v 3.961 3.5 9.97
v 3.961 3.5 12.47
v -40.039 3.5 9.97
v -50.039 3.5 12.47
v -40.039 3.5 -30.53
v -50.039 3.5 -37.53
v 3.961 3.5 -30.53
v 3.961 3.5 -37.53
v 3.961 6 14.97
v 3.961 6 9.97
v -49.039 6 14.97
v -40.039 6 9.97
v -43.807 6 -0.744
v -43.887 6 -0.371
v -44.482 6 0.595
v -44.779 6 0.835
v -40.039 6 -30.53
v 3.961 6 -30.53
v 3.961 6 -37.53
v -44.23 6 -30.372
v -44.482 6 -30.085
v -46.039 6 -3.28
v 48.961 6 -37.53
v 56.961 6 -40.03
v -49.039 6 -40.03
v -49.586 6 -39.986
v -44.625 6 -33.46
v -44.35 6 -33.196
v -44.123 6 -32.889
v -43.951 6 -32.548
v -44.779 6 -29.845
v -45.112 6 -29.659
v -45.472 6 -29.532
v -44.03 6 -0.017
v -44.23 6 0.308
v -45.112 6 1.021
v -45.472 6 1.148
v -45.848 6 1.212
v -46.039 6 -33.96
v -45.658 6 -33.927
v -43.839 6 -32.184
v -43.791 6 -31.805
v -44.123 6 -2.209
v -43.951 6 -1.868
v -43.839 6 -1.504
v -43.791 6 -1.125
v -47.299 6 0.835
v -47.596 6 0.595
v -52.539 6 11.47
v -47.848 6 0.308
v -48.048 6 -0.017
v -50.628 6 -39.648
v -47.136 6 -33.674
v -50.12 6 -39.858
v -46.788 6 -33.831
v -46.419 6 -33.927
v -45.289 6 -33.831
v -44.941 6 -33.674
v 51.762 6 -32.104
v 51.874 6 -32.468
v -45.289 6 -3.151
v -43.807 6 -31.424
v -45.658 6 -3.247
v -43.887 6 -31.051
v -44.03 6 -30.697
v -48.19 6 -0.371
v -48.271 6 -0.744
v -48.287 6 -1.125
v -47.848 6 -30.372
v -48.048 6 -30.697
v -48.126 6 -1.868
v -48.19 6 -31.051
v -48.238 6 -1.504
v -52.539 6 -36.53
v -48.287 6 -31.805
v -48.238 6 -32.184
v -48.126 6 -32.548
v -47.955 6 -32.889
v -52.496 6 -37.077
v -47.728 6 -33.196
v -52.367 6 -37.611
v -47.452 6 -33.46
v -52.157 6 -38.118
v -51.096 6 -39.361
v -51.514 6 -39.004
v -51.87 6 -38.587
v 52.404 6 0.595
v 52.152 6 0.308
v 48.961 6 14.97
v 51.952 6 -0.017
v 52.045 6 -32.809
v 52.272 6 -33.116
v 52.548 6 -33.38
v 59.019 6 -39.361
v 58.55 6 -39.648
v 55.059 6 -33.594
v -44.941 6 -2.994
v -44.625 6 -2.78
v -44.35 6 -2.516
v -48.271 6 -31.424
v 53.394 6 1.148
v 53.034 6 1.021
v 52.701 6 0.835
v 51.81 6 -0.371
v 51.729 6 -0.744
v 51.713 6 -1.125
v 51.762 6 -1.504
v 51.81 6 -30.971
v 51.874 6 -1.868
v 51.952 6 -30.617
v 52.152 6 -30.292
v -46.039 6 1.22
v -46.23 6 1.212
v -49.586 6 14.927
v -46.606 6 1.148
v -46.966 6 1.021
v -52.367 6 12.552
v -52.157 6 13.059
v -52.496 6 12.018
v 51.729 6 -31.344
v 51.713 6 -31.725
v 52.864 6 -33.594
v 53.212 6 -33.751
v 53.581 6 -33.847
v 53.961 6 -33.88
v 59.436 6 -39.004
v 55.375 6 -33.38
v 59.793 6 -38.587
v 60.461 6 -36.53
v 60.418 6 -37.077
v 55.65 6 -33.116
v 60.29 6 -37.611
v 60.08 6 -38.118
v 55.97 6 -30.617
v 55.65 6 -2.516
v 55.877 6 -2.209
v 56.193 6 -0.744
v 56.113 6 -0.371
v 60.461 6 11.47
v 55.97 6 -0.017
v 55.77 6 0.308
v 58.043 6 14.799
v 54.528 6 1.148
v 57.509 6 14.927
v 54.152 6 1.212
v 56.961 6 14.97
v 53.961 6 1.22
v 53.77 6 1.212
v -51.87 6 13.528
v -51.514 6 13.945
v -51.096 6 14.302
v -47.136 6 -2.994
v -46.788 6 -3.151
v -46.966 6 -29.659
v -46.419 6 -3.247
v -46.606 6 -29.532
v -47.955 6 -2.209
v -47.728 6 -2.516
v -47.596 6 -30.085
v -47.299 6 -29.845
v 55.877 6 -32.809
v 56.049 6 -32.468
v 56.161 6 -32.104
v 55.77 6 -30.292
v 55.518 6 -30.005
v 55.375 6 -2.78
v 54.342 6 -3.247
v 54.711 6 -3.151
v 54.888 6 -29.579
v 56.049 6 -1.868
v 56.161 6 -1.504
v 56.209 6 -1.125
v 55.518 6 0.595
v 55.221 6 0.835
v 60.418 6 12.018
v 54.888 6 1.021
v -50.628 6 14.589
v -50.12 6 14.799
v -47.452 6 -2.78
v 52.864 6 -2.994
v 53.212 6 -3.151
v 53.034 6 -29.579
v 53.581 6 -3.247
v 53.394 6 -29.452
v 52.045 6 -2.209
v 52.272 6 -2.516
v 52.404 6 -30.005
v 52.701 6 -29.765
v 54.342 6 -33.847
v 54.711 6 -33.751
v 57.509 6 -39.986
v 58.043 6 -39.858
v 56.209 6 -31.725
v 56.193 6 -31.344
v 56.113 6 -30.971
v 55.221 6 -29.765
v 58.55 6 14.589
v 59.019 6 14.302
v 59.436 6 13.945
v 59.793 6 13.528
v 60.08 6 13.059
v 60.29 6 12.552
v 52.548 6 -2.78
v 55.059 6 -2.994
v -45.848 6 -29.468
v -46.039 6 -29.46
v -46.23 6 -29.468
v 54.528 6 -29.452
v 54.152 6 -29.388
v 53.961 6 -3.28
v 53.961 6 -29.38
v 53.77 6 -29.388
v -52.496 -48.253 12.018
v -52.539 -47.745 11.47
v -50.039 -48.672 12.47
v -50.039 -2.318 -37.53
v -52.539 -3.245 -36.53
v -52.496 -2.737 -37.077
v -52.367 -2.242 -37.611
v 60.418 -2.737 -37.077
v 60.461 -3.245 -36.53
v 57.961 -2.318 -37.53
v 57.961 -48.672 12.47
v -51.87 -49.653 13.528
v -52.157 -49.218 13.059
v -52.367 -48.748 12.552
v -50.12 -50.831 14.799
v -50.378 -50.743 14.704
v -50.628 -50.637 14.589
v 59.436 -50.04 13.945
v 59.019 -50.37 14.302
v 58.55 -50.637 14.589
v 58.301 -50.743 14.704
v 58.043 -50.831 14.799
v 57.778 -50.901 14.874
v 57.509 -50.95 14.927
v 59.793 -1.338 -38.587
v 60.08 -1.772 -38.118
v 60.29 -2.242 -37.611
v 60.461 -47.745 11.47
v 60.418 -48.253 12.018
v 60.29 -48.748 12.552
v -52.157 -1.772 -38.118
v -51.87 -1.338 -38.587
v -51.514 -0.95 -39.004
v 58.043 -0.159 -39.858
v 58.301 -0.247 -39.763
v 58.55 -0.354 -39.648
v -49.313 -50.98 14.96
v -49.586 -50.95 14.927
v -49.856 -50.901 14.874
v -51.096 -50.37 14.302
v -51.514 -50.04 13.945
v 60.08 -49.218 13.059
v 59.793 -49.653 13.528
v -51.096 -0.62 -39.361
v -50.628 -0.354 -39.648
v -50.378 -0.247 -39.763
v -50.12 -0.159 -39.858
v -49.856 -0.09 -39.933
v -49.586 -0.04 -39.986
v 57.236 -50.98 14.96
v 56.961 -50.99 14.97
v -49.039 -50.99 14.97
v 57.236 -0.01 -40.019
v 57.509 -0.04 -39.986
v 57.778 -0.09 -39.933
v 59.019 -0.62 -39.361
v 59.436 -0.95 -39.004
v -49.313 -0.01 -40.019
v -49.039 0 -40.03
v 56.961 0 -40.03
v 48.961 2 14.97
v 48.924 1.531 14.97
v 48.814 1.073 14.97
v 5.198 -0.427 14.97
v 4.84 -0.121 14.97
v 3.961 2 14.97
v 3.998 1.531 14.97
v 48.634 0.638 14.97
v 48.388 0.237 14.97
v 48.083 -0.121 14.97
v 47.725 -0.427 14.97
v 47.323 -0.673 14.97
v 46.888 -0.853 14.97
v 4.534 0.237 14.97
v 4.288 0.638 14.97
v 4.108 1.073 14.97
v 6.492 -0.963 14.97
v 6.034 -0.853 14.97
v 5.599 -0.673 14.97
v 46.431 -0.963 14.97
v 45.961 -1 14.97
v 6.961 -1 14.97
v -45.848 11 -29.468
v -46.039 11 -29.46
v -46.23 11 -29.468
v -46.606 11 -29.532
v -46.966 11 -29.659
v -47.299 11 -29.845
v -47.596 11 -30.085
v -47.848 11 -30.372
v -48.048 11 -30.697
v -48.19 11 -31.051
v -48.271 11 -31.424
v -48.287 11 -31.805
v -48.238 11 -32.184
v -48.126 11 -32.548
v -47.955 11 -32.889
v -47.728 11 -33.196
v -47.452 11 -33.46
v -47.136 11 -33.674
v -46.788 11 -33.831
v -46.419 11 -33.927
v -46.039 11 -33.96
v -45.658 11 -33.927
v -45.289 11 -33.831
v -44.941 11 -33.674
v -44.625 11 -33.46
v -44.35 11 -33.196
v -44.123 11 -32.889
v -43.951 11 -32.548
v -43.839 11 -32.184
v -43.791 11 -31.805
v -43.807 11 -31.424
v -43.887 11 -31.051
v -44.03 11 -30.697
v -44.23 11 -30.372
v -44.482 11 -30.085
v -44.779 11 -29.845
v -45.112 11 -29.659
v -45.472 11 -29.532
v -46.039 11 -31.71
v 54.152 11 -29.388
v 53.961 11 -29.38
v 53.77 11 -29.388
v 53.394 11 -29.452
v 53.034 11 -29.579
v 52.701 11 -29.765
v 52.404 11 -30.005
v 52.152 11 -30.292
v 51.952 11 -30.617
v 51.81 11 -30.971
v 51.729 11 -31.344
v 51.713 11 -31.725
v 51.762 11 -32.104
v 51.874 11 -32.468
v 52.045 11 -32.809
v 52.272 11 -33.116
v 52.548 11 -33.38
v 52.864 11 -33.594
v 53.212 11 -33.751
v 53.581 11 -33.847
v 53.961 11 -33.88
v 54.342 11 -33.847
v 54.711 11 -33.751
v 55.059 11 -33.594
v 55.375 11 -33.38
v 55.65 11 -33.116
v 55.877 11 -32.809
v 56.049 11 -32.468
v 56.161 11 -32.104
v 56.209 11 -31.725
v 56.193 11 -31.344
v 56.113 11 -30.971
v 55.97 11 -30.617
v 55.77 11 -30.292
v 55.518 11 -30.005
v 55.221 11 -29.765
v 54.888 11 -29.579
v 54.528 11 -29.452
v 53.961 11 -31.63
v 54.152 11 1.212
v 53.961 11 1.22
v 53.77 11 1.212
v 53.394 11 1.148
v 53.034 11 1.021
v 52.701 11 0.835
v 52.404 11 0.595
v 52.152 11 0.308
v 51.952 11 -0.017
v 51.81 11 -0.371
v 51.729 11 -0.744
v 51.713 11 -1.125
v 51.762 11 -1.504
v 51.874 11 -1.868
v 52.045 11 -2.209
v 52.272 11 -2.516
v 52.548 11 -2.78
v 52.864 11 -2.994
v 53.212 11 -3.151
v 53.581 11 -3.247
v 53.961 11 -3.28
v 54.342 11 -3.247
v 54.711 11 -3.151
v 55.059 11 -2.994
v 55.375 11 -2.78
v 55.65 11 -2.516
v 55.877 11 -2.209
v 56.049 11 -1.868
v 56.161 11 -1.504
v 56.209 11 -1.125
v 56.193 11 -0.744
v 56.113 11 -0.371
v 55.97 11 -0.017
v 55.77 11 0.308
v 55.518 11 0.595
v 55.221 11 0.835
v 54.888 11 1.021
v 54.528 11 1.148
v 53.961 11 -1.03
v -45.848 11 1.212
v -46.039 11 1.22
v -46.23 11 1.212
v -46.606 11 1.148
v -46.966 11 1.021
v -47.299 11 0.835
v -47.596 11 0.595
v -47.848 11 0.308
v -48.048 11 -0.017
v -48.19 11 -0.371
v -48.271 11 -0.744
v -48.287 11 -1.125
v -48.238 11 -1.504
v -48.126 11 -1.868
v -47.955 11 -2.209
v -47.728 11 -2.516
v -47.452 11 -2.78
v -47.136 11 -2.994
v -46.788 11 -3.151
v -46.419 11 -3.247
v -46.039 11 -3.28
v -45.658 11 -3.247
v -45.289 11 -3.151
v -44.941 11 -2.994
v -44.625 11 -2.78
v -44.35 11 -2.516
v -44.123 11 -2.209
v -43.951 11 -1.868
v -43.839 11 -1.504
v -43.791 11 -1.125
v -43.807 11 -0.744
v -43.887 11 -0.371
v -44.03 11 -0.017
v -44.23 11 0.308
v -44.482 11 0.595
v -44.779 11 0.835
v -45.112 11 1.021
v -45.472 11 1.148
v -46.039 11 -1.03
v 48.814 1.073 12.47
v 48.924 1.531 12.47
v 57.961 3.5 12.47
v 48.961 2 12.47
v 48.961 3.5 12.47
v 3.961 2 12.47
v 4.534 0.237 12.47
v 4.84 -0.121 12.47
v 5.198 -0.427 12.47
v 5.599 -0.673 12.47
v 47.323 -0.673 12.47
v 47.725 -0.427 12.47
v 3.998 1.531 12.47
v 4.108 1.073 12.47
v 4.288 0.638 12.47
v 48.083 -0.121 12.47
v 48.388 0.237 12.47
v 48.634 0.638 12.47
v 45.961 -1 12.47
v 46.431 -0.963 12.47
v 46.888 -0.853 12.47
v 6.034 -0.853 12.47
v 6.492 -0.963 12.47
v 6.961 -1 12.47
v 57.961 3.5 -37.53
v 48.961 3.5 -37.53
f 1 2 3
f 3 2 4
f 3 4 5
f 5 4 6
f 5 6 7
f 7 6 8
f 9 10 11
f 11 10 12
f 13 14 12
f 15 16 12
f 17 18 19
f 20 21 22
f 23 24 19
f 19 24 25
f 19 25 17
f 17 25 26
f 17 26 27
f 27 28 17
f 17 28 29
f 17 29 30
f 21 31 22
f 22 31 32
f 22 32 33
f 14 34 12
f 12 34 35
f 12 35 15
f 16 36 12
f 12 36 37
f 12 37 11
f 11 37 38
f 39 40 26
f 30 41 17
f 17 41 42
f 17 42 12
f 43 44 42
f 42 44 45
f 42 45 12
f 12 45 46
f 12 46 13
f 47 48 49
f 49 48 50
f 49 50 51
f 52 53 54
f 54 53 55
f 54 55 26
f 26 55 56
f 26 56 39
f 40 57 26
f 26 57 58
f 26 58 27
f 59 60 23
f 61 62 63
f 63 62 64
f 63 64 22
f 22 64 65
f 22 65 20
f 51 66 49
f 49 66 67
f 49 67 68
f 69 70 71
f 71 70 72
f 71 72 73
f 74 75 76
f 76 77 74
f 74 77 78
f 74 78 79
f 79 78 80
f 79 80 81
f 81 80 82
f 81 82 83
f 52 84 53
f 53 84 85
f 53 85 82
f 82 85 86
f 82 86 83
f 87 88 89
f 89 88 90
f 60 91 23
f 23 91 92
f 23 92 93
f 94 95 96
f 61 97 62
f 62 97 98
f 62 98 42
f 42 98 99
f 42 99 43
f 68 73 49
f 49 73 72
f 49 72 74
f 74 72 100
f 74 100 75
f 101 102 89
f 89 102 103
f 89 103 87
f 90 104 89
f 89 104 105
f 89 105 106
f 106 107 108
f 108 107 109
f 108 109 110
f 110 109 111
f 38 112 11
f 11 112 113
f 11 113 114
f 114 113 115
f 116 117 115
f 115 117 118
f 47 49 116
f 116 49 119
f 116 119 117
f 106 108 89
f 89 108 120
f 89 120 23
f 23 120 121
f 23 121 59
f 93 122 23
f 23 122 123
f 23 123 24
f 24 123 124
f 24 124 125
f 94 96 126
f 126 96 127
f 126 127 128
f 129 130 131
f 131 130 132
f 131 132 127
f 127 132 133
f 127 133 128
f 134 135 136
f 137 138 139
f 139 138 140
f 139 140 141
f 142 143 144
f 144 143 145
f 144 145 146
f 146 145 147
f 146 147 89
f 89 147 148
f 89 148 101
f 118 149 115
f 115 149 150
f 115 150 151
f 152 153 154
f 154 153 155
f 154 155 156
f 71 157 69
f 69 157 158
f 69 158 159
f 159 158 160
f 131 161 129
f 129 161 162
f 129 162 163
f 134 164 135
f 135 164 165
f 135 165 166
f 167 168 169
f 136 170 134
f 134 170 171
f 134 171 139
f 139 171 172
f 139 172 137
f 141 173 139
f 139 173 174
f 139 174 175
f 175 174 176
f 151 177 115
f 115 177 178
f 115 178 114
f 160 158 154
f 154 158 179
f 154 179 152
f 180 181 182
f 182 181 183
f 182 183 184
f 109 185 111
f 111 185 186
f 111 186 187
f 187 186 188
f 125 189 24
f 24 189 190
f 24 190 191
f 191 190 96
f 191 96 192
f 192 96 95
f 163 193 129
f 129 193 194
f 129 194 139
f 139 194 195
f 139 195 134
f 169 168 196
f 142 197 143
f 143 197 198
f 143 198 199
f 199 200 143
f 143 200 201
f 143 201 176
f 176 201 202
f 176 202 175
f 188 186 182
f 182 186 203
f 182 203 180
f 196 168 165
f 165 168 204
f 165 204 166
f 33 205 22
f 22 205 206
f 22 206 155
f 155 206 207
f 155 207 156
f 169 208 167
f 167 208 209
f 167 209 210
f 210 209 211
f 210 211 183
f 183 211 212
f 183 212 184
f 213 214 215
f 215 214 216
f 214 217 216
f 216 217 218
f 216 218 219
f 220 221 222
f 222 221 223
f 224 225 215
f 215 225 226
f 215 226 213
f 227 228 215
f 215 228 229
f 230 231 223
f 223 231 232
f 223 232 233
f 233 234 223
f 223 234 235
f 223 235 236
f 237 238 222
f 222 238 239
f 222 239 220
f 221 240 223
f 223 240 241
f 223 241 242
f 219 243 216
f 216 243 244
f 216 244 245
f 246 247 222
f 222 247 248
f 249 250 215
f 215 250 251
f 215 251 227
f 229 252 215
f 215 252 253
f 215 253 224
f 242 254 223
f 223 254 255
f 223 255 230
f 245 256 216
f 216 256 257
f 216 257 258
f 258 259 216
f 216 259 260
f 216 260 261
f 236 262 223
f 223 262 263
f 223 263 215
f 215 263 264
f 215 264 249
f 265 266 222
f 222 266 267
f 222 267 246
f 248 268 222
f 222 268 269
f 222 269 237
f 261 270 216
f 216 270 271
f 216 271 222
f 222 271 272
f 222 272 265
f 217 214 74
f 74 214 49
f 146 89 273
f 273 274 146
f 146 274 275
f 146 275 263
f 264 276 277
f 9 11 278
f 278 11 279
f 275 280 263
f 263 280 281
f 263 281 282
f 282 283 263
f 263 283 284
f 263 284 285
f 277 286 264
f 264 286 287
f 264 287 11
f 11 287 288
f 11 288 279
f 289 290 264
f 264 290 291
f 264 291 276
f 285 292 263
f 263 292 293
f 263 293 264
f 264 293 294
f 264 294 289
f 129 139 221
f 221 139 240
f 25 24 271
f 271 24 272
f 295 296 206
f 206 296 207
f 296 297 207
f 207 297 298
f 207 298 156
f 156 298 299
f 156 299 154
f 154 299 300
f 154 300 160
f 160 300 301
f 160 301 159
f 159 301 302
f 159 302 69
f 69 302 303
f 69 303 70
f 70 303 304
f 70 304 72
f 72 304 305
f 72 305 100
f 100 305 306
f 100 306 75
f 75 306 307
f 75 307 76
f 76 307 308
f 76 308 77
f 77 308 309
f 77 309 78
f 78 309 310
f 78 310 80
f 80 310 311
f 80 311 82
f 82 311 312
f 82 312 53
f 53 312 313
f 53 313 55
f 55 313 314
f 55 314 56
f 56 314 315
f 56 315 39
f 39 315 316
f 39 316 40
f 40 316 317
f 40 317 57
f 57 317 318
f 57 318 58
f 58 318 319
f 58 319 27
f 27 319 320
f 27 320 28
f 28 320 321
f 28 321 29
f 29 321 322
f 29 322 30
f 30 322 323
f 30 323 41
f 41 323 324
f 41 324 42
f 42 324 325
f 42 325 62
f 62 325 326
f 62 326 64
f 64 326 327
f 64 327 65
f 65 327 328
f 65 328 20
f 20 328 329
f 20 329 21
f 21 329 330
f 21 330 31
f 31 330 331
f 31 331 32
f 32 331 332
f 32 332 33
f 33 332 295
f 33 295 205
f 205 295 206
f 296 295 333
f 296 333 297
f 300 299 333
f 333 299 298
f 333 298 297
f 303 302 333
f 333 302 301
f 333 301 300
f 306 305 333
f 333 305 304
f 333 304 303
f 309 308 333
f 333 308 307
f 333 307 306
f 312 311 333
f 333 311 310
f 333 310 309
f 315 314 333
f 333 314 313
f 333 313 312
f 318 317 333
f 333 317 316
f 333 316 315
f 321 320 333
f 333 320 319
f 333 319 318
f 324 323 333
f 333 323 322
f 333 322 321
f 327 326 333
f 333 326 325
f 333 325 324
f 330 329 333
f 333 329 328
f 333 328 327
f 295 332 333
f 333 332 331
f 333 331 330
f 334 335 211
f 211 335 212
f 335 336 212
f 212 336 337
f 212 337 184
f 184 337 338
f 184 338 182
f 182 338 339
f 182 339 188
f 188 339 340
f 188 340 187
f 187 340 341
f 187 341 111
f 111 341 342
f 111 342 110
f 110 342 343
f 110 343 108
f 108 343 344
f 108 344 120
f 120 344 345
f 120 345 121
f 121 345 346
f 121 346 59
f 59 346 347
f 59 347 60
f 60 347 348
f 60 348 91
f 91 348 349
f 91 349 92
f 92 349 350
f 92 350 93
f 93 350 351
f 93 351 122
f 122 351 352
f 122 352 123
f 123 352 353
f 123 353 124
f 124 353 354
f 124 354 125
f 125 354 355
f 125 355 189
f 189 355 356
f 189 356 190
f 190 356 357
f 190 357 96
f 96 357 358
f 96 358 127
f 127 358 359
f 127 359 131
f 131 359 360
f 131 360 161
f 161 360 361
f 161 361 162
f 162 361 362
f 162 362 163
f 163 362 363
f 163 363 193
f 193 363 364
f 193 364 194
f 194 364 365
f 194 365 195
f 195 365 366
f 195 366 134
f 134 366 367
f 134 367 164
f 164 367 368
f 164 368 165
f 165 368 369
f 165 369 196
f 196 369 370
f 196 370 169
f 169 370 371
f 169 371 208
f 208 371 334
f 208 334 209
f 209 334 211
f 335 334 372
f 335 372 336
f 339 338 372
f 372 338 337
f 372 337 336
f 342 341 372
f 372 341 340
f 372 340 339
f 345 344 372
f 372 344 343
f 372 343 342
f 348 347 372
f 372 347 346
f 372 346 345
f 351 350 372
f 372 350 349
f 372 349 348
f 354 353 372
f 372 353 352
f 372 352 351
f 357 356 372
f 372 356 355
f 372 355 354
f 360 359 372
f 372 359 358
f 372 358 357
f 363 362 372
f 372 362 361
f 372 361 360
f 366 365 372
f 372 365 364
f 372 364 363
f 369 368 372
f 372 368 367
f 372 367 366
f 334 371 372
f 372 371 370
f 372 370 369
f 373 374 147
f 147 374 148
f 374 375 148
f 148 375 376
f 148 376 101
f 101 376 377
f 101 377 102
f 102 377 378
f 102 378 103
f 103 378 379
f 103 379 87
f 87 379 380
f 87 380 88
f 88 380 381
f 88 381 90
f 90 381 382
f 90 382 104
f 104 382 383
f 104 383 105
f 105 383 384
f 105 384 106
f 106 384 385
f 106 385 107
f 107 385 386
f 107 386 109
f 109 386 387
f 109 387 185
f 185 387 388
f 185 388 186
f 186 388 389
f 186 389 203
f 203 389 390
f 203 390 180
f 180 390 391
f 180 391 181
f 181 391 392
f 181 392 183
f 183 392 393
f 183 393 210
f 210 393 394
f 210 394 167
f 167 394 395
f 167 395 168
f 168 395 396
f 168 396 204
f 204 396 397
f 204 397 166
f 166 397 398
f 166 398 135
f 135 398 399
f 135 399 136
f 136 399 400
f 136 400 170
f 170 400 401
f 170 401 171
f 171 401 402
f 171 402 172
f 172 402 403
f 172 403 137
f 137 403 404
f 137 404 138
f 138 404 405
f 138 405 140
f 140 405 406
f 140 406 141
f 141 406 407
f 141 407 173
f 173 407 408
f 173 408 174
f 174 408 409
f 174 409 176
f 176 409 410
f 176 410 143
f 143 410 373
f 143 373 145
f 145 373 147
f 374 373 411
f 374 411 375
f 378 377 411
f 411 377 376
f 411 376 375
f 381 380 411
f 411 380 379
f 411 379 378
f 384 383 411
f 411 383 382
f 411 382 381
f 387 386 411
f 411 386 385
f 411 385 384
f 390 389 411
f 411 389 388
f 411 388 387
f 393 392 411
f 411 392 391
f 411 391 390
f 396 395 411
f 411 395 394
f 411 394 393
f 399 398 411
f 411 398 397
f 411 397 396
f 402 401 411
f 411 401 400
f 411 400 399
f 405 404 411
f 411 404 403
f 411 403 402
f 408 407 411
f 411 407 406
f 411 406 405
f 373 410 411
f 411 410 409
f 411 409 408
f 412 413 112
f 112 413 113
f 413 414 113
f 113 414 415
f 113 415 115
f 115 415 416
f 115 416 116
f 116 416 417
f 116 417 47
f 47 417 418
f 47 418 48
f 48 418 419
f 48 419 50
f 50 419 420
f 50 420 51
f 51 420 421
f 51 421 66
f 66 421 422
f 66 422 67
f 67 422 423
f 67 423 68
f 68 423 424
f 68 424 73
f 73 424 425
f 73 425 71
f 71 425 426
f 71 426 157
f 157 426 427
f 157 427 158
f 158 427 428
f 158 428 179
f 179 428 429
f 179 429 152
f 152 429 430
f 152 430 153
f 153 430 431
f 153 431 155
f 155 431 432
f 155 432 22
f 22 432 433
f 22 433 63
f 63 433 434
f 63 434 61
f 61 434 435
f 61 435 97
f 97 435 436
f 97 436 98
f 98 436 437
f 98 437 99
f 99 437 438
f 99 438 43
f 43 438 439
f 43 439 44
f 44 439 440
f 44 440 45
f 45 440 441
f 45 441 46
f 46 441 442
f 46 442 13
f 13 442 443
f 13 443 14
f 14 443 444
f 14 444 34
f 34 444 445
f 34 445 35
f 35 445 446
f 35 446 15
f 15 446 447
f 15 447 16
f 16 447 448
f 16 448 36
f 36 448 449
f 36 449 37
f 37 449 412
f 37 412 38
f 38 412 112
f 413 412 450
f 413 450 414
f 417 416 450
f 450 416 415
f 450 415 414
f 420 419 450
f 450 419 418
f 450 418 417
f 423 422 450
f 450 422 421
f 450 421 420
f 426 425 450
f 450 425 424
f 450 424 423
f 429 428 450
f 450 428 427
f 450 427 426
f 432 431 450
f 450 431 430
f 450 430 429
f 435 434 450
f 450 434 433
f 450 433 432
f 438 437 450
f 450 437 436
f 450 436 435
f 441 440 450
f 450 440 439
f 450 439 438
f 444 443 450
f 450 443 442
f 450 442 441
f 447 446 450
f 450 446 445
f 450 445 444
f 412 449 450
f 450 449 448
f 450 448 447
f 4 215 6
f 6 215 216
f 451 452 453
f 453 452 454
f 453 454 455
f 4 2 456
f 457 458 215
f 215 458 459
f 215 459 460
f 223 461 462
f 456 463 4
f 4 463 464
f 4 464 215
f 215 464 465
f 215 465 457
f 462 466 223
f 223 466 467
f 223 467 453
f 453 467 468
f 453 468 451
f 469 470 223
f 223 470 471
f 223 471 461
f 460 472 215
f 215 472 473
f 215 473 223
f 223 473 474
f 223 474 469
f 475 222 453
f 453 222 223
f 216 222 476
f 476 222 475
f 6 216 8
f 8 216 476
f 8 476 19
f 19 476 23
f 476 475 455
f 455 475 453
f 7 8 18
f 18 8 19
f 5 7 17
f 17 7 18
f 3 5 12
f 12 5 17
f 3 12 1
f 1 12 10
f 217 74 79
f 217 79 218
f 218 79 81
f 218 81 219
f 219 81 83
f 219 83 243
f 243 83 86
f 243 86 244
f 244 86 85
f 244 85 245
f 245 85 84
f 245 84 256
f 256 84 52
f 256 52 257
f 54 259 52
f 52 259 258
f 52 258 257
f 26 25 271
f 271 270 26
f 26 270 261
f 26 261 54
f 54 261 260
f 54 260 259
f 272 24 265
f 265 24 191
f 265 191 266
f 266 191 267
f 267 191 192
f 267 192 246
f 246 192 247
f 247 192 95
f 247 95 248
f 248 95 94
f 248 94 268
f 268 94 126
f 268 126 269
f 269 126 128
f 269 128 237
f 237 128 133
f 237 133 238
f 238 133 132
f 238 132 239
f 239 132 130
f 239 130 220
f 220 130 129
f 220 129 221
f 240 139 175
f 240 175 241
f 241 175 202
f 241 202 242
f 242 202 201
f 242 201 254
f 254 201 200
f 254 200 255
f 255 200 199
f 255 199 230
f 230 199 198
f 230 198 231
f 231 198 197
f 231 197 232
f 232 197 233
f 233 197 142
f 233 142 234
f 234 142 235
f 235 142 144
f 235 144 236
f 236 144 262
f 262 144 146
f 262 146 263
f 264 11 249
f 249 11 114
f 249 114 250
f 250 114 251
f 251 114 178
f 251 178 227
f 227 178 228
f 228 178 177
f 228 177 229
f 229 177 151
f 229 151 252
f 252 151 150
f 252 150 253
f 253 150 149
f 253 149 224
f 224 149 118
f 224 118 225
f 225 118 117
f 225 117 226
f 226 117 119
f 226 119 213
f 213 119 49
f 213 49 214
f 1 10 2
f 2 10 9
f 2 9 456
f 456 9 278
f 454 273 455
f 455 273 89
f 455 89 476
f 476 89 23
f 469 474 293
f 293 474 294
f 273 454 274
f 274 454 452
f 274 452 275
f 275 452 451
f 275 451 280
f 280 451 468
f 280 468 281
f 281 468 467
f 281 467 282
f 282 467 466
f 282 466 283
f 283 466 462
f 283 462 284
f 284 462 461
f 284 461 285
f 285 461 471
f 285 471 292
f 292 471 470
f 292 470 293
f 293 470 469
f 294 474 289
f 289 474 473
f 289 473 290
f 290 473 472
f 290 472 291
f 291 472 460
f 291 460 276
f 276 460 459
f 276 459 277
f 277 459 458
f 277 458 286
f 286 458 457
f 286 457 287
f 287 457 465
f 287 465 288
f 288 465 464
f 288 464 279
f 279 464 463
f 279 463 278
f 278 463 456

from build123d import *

# Parameters (mm, degrees)
SKETCH1_W           = 113
SKETCH1_H           = 55
BOSS_EXTRUDE1_DEPTH = 6
BOSS_EXTRUDE3_DEPTH = 113
SKETCH2_R           = 2.25
BOSS_EXTRUDE2_DEPTH = 5
SHELL1_START        = -50.038745387
SHELL1_DEPTH        = 108
SKETCH4_W           = 44
SKETCH4_H           = 7
SKETCH4_W_2         = 88
SKETCH4_H_2         = 40.5
CUT_EXTRUDE1_DEPTH  = 10
FILLET2_R           = 3.5
CUT_EXTRUDE2_START  = -52.5
SKETCH5_W           = 45
SKETCH5_H           = 7
CUT_EXTRUDE2_DEPTH  = 52.5
FILLET3_R           = 3


# Read off the part's stored shape, not the designer's step: Shell1
with BuildPart() as part:
    # Sketch1 → Boss-Extrude1 (new body)
    with BuildSketch(Plane(origin=(0, 0, 0), x_dir=(1, 0, 0), z_dir=(0, 1, 0))):
        with Locations((3.961254613, 12.529520295)):
            Rectangle(SKETCH1_W, SKETCH1_H)
    extrude(amount=BOSS_EXTRUDE1_DEPTH)

    # Sketch3 → Boss-Extrude3 (add)
    with BuildSketch(Plane(origin=(60.461254613, 0, 0), x_dir=(0, 0, -1), z_dir=(1, 0, 0))):
        Polygon((-14.970479705, 0), (-14.970479705, -50.990195136), (40.029520295, 0), align=None)
    extrude(amount=-BOSS_EXTRUDE3_DEPTH)

    # Sketch2 → Boss-Extrude2 (add)
    with BuildSketch(Plane(origin=(0, 6, 0), x_dir=(1, 0, 0), z_dir=(0, 1, 0))):
        with Locations(Location((-46.038745387, 31.709520295, 0), (0, 0, 270))):
            Circle(SKETCH2_R)
        with Locations(Location((53.961254613, 31.629520295, 0), (0, 0, 270))):
            Circle(SKETCH2_R)
        with Locations(Location((53.961254613, 1.029520295, 0), (0, 0, 270))):
            Circle(SKETCH2_R)
        with Locations(Location((-46.038745387, 1.029520295, 0), (0, 0, 270))):
            Circle(SKETCH2_R)
    extrude(amount=BOSS_EXTRUDE2_DEPTH)

    # Shell1 outline → Shell1 (cut)
    with BuildSketch(Plane.YZ.offset(SHELL1_START)):
        Polygon((3.5, 12.470479705), (-48.672458993, 12.470479705), (-2.317736143, -37.529520295), (3.5, -37.529520295), align=None)
    extrude(amount=SHELL1_DEPTH, mode=Mode.SUBTRACT)

    # Sketch4 → Cut-Extrude1 (cut)
    with BuildSketch(Plane.XZ.offset(-3.5)):
        with Locations((25.961254613, -34.029520295)):
            Rectangle(SKETCH4_W, SKETCH4_H)
        with Locations((3.961254613, -10.279520295)):
            Rectangle(SKETCH4_W_2, SKETCH4_H_2)
    extrude(amount=-CUT_EXTRUDE1_DEPTH, mode=Mode.SUBTRACT)

    # Fillet2
    fillet2_edges = [part.edges().sort_by_distance(p)[0] for p in [
        (-52.538745387, 3, -40.029520295),
        (60.461254613, 3, -40.029520295),
        (60.461254613, -22.495097568, 14.970479705),
        (-52.538745387, -22.495097568, 14.970479705),
    ]]
    fillet(fillet2_edges, radius=FILLET2_R)

    # Sketch5 → Cut-Extrude2 (cut)
    with BuildSketch(Plane.XY.offset(14.970479705).offset(CUT_EXTRUDE2_START)):
        with Locations((26.461254613, 2.5)):
            Rectangle(SKETCH5_W, SKETCH5_H)
    extrude(amount=CUT_EXTRUDE2_DEPTH, mode=Mode.SUBTRACT)

    # Fillet3
    fillet3_edges = [part.edges().sort_by_distance(p)[0] for p in [
        (3.961254613, -1, 13.720479705),
        (48.961254613, -1, 13.720479705),
    ]]
    fillet(fillet3_edges, radius=FILLET3_R)


solid = part.part
